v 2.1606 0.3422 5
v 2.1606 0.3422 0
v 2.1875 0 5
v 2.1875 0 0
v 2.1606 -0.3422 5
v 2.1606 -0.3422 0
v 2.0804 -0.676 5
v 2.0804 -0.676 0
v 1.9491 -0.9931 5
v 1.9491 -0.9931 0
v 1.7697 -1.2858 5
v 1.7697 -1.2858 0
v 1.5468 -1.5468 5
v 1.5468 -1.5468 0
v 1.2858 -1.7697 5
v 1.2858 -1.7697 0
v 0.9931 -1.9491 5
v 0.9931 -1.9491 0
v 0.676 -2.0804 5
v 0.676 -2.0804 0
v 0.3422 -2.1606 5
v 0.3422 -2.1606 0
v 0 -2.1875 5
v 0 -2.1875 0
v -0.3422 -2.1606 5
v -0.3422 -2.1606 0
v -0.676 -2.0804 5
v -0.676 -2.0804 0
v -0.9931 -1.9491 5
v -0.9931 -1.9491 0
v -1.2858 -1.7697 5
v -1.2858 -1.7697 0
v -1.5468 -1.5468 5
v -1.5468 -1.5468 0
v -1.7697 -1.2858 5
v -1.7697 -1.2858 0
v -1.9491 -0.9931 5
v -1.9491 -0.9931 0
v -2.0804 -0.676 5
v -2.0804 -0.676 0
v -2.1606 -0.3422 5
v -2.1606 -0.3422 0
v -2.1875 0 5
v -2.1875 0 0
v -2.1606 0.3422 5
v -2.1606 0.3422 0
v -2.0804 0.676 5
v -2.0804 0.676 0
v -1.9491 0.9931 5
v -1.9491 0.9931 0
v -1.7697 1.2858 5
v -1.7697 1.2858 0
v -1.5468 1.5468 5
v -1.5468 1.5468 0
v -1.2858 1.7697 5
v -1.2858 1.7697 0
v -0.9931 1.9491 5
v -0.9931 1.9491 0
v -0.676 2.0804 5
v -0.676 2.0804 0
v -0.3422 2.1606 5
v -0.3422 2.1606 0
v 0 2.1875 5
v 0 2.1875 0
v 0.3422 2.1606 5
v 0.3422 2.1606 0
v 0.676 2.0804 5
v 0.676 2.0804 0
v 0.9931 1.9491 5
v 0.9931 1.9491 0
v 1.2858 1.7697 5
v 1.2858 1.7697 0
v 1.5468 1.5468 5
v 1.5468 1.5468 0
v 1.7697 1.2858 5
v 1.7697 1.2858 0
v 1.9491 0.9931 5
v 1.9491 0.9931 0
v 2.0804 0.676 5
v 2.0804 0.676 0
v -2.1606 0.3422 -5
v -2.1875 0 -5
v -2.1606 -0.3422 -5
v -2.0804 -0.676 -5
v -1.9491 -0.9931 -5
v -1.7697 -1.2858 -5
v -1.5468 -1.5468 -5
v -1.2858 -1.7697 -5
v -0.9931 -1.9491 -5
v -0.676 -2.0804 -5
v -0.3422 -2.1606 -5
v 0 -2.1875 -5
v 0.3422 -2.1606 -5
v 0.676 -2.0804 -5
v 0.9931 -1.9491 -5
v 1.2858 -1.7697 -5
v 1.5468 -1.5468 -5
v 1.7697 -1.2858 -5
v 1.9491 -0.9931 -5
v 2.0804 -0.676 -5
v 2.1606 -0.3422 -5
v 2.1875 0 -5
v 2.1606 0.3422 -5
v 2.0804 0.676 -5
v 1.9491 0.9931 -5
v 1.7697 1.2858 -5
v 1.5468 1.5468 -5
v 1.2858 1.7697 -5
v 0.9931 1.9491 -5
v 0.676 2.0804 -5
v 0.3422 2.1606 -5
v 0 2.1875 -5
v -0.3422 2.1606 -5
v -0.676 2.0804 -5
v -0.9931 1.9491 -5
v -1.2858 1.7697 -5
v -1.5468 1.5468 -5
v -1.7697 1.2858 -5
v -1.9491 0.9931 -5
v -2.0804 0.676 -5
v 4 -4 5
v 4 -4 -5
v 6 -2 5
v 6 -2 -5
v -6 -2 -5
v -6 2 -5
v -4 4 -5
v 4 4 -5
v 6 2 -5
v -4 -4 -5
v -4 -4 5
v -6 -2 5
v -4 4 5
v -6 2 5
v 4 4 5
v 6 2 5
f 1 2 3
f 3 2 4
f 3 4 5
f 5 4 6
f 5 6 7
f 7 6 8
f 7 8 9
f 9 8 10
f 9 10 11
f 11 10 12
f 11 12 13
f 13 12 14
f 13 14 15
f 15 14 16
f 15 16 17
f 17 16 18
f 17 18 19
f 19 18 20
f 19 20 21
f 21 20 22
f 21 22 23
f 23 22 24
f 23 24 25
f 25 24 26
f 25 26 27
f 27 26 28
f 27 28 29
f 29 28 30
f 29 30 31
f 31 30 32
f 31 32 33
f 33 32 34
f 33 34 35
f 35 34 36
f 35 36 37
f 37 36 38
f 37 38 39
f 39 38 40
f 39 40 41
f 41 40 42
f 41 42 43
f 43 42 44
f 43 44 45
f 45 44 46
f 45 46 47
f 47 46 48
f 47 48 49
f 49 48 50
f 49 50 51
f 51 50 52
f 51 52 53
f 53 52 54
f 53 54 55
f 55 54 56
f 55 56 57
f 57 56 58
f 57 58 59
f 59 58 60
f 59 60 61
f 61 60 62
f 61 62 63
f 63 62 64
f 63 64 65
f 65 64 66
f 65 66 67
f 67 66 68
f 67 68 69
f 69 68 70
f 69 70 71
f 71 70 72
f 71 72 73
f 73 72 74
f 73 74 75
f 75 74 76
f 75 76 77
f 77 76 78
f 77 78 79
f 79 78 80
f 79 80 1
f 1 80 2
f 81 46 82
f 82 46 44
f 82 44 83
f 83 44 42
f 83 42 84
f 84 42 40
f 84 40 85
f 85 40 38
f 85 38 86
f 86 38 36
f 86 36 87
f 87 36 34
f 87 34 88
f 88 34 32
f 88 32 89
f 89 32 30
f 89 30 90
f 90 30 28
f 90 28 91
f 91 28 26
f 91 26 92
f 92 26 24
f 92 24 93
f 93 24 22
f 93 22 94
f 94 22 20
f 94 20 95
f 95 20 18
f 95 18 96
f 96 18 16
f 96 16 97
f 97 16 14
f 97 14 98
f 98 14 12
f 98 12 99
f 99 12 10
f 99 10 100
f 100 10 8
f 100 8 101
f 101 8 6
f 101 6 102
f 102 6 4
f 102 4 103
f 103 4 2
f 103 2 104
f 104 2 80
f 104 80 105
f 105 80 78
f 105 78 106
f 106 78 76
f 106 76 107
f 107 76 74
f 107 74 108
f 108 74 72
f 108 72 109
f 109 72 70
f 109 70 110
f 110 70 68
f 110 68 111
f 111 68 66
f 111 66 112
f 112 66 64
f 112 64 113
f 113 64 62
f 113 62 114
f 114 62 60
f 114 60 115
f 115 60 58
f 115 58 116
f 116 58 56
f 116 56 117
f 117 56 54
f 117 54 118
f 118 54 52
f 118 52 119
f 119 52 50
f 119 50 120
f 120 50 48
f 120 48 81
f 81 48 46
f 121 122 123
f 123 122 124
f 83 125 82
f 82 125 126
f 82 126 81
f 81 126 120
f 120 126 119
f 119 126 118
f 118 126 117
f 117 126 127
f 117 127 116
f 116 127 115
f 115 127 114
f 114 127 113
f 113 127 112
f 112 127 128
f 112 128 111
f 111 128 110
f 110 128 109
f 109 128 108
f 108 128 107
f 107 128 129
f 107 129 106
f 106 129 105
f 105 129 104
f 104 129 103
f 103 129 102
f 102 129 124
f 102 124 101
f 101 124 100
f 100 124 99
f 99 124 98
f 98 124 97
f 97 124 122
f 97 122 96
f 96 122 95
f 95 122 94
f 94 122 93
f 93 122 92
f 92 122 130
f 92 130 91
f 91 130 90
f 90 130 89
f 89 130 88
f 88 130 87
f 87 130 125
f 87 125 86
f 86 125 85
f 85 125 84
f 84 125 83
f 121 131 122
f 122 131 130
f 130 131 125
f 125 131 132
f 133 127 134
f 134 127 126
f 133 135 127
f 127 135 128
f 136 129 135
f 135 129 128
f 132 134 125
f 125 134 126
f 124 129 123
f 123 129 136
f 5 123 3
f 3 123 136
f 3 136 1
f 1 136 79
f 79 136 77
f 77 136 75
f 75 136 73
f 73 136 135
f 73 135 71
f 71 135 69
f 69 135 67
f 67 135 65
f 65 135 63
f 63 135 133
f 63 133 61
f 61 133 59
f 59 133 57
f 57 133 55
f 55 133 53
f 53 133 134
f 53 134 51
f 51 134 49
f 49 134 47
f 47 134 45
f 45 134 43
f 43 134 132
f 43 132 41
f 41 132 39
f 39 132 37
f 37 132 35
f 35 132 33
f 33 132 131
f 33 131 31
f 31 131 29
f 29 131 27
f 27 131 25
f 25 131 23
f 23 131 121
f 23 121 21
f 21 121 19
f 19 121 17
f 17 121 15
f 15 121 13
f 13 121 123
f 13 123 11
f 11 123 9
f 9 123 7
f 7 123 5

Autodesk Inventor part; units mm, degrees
ref_plane "YZ Plane" through (0, 0, 0) normal (1, 0, 0) x (0, 1, 0)
ref_plane "XZ Plane" through (0, 0, 0) normal (0, 1, 0) x (-1, 0, 0)
ref_plane "XY Plane" through (0, 0, 0) normal (0, 0, 1) x (1, 0, 0)
sketch "Sketch1" plane through (0, 0, 0) normal (0, 0, 1) x (1, 0, 0)
  line L0 (-6, 4) -> (6, 4)
  line L1 (6, 4) -> (6, -4)
  line L2 (6, -4) -> (-6, -4)
  line L3 (-6, -4) -> (-6, 4)
  line L4 (-6, 4) -> (6, -4) construction
  line L5 (6, 4) -> (-6, -4) construction
  point P0 (0, 0)
  dimension "d0" = 12
  dimension "d1" = 8
extrude "Extrusion1" add sketch "Sketch1" along normal mid plane 10
chamfer "Chamfer1" distance 2 angle 45 4 edges at (6, 4, 0) (-6, 4, 0) (-6, -4, 0) (6, -4, 0)
sketch "Sketch2" plane through (0, 0, -5) normal (0, 0, -1) x (-1, 0, 0)
  circle A0 centre (0, 0) radius 2.1875
  dimension "d7" = 4.375
extrude "Extrusion2" cut sketch "Sketch2" against normal through all
properties part number "conexion-engrane-hombro"
